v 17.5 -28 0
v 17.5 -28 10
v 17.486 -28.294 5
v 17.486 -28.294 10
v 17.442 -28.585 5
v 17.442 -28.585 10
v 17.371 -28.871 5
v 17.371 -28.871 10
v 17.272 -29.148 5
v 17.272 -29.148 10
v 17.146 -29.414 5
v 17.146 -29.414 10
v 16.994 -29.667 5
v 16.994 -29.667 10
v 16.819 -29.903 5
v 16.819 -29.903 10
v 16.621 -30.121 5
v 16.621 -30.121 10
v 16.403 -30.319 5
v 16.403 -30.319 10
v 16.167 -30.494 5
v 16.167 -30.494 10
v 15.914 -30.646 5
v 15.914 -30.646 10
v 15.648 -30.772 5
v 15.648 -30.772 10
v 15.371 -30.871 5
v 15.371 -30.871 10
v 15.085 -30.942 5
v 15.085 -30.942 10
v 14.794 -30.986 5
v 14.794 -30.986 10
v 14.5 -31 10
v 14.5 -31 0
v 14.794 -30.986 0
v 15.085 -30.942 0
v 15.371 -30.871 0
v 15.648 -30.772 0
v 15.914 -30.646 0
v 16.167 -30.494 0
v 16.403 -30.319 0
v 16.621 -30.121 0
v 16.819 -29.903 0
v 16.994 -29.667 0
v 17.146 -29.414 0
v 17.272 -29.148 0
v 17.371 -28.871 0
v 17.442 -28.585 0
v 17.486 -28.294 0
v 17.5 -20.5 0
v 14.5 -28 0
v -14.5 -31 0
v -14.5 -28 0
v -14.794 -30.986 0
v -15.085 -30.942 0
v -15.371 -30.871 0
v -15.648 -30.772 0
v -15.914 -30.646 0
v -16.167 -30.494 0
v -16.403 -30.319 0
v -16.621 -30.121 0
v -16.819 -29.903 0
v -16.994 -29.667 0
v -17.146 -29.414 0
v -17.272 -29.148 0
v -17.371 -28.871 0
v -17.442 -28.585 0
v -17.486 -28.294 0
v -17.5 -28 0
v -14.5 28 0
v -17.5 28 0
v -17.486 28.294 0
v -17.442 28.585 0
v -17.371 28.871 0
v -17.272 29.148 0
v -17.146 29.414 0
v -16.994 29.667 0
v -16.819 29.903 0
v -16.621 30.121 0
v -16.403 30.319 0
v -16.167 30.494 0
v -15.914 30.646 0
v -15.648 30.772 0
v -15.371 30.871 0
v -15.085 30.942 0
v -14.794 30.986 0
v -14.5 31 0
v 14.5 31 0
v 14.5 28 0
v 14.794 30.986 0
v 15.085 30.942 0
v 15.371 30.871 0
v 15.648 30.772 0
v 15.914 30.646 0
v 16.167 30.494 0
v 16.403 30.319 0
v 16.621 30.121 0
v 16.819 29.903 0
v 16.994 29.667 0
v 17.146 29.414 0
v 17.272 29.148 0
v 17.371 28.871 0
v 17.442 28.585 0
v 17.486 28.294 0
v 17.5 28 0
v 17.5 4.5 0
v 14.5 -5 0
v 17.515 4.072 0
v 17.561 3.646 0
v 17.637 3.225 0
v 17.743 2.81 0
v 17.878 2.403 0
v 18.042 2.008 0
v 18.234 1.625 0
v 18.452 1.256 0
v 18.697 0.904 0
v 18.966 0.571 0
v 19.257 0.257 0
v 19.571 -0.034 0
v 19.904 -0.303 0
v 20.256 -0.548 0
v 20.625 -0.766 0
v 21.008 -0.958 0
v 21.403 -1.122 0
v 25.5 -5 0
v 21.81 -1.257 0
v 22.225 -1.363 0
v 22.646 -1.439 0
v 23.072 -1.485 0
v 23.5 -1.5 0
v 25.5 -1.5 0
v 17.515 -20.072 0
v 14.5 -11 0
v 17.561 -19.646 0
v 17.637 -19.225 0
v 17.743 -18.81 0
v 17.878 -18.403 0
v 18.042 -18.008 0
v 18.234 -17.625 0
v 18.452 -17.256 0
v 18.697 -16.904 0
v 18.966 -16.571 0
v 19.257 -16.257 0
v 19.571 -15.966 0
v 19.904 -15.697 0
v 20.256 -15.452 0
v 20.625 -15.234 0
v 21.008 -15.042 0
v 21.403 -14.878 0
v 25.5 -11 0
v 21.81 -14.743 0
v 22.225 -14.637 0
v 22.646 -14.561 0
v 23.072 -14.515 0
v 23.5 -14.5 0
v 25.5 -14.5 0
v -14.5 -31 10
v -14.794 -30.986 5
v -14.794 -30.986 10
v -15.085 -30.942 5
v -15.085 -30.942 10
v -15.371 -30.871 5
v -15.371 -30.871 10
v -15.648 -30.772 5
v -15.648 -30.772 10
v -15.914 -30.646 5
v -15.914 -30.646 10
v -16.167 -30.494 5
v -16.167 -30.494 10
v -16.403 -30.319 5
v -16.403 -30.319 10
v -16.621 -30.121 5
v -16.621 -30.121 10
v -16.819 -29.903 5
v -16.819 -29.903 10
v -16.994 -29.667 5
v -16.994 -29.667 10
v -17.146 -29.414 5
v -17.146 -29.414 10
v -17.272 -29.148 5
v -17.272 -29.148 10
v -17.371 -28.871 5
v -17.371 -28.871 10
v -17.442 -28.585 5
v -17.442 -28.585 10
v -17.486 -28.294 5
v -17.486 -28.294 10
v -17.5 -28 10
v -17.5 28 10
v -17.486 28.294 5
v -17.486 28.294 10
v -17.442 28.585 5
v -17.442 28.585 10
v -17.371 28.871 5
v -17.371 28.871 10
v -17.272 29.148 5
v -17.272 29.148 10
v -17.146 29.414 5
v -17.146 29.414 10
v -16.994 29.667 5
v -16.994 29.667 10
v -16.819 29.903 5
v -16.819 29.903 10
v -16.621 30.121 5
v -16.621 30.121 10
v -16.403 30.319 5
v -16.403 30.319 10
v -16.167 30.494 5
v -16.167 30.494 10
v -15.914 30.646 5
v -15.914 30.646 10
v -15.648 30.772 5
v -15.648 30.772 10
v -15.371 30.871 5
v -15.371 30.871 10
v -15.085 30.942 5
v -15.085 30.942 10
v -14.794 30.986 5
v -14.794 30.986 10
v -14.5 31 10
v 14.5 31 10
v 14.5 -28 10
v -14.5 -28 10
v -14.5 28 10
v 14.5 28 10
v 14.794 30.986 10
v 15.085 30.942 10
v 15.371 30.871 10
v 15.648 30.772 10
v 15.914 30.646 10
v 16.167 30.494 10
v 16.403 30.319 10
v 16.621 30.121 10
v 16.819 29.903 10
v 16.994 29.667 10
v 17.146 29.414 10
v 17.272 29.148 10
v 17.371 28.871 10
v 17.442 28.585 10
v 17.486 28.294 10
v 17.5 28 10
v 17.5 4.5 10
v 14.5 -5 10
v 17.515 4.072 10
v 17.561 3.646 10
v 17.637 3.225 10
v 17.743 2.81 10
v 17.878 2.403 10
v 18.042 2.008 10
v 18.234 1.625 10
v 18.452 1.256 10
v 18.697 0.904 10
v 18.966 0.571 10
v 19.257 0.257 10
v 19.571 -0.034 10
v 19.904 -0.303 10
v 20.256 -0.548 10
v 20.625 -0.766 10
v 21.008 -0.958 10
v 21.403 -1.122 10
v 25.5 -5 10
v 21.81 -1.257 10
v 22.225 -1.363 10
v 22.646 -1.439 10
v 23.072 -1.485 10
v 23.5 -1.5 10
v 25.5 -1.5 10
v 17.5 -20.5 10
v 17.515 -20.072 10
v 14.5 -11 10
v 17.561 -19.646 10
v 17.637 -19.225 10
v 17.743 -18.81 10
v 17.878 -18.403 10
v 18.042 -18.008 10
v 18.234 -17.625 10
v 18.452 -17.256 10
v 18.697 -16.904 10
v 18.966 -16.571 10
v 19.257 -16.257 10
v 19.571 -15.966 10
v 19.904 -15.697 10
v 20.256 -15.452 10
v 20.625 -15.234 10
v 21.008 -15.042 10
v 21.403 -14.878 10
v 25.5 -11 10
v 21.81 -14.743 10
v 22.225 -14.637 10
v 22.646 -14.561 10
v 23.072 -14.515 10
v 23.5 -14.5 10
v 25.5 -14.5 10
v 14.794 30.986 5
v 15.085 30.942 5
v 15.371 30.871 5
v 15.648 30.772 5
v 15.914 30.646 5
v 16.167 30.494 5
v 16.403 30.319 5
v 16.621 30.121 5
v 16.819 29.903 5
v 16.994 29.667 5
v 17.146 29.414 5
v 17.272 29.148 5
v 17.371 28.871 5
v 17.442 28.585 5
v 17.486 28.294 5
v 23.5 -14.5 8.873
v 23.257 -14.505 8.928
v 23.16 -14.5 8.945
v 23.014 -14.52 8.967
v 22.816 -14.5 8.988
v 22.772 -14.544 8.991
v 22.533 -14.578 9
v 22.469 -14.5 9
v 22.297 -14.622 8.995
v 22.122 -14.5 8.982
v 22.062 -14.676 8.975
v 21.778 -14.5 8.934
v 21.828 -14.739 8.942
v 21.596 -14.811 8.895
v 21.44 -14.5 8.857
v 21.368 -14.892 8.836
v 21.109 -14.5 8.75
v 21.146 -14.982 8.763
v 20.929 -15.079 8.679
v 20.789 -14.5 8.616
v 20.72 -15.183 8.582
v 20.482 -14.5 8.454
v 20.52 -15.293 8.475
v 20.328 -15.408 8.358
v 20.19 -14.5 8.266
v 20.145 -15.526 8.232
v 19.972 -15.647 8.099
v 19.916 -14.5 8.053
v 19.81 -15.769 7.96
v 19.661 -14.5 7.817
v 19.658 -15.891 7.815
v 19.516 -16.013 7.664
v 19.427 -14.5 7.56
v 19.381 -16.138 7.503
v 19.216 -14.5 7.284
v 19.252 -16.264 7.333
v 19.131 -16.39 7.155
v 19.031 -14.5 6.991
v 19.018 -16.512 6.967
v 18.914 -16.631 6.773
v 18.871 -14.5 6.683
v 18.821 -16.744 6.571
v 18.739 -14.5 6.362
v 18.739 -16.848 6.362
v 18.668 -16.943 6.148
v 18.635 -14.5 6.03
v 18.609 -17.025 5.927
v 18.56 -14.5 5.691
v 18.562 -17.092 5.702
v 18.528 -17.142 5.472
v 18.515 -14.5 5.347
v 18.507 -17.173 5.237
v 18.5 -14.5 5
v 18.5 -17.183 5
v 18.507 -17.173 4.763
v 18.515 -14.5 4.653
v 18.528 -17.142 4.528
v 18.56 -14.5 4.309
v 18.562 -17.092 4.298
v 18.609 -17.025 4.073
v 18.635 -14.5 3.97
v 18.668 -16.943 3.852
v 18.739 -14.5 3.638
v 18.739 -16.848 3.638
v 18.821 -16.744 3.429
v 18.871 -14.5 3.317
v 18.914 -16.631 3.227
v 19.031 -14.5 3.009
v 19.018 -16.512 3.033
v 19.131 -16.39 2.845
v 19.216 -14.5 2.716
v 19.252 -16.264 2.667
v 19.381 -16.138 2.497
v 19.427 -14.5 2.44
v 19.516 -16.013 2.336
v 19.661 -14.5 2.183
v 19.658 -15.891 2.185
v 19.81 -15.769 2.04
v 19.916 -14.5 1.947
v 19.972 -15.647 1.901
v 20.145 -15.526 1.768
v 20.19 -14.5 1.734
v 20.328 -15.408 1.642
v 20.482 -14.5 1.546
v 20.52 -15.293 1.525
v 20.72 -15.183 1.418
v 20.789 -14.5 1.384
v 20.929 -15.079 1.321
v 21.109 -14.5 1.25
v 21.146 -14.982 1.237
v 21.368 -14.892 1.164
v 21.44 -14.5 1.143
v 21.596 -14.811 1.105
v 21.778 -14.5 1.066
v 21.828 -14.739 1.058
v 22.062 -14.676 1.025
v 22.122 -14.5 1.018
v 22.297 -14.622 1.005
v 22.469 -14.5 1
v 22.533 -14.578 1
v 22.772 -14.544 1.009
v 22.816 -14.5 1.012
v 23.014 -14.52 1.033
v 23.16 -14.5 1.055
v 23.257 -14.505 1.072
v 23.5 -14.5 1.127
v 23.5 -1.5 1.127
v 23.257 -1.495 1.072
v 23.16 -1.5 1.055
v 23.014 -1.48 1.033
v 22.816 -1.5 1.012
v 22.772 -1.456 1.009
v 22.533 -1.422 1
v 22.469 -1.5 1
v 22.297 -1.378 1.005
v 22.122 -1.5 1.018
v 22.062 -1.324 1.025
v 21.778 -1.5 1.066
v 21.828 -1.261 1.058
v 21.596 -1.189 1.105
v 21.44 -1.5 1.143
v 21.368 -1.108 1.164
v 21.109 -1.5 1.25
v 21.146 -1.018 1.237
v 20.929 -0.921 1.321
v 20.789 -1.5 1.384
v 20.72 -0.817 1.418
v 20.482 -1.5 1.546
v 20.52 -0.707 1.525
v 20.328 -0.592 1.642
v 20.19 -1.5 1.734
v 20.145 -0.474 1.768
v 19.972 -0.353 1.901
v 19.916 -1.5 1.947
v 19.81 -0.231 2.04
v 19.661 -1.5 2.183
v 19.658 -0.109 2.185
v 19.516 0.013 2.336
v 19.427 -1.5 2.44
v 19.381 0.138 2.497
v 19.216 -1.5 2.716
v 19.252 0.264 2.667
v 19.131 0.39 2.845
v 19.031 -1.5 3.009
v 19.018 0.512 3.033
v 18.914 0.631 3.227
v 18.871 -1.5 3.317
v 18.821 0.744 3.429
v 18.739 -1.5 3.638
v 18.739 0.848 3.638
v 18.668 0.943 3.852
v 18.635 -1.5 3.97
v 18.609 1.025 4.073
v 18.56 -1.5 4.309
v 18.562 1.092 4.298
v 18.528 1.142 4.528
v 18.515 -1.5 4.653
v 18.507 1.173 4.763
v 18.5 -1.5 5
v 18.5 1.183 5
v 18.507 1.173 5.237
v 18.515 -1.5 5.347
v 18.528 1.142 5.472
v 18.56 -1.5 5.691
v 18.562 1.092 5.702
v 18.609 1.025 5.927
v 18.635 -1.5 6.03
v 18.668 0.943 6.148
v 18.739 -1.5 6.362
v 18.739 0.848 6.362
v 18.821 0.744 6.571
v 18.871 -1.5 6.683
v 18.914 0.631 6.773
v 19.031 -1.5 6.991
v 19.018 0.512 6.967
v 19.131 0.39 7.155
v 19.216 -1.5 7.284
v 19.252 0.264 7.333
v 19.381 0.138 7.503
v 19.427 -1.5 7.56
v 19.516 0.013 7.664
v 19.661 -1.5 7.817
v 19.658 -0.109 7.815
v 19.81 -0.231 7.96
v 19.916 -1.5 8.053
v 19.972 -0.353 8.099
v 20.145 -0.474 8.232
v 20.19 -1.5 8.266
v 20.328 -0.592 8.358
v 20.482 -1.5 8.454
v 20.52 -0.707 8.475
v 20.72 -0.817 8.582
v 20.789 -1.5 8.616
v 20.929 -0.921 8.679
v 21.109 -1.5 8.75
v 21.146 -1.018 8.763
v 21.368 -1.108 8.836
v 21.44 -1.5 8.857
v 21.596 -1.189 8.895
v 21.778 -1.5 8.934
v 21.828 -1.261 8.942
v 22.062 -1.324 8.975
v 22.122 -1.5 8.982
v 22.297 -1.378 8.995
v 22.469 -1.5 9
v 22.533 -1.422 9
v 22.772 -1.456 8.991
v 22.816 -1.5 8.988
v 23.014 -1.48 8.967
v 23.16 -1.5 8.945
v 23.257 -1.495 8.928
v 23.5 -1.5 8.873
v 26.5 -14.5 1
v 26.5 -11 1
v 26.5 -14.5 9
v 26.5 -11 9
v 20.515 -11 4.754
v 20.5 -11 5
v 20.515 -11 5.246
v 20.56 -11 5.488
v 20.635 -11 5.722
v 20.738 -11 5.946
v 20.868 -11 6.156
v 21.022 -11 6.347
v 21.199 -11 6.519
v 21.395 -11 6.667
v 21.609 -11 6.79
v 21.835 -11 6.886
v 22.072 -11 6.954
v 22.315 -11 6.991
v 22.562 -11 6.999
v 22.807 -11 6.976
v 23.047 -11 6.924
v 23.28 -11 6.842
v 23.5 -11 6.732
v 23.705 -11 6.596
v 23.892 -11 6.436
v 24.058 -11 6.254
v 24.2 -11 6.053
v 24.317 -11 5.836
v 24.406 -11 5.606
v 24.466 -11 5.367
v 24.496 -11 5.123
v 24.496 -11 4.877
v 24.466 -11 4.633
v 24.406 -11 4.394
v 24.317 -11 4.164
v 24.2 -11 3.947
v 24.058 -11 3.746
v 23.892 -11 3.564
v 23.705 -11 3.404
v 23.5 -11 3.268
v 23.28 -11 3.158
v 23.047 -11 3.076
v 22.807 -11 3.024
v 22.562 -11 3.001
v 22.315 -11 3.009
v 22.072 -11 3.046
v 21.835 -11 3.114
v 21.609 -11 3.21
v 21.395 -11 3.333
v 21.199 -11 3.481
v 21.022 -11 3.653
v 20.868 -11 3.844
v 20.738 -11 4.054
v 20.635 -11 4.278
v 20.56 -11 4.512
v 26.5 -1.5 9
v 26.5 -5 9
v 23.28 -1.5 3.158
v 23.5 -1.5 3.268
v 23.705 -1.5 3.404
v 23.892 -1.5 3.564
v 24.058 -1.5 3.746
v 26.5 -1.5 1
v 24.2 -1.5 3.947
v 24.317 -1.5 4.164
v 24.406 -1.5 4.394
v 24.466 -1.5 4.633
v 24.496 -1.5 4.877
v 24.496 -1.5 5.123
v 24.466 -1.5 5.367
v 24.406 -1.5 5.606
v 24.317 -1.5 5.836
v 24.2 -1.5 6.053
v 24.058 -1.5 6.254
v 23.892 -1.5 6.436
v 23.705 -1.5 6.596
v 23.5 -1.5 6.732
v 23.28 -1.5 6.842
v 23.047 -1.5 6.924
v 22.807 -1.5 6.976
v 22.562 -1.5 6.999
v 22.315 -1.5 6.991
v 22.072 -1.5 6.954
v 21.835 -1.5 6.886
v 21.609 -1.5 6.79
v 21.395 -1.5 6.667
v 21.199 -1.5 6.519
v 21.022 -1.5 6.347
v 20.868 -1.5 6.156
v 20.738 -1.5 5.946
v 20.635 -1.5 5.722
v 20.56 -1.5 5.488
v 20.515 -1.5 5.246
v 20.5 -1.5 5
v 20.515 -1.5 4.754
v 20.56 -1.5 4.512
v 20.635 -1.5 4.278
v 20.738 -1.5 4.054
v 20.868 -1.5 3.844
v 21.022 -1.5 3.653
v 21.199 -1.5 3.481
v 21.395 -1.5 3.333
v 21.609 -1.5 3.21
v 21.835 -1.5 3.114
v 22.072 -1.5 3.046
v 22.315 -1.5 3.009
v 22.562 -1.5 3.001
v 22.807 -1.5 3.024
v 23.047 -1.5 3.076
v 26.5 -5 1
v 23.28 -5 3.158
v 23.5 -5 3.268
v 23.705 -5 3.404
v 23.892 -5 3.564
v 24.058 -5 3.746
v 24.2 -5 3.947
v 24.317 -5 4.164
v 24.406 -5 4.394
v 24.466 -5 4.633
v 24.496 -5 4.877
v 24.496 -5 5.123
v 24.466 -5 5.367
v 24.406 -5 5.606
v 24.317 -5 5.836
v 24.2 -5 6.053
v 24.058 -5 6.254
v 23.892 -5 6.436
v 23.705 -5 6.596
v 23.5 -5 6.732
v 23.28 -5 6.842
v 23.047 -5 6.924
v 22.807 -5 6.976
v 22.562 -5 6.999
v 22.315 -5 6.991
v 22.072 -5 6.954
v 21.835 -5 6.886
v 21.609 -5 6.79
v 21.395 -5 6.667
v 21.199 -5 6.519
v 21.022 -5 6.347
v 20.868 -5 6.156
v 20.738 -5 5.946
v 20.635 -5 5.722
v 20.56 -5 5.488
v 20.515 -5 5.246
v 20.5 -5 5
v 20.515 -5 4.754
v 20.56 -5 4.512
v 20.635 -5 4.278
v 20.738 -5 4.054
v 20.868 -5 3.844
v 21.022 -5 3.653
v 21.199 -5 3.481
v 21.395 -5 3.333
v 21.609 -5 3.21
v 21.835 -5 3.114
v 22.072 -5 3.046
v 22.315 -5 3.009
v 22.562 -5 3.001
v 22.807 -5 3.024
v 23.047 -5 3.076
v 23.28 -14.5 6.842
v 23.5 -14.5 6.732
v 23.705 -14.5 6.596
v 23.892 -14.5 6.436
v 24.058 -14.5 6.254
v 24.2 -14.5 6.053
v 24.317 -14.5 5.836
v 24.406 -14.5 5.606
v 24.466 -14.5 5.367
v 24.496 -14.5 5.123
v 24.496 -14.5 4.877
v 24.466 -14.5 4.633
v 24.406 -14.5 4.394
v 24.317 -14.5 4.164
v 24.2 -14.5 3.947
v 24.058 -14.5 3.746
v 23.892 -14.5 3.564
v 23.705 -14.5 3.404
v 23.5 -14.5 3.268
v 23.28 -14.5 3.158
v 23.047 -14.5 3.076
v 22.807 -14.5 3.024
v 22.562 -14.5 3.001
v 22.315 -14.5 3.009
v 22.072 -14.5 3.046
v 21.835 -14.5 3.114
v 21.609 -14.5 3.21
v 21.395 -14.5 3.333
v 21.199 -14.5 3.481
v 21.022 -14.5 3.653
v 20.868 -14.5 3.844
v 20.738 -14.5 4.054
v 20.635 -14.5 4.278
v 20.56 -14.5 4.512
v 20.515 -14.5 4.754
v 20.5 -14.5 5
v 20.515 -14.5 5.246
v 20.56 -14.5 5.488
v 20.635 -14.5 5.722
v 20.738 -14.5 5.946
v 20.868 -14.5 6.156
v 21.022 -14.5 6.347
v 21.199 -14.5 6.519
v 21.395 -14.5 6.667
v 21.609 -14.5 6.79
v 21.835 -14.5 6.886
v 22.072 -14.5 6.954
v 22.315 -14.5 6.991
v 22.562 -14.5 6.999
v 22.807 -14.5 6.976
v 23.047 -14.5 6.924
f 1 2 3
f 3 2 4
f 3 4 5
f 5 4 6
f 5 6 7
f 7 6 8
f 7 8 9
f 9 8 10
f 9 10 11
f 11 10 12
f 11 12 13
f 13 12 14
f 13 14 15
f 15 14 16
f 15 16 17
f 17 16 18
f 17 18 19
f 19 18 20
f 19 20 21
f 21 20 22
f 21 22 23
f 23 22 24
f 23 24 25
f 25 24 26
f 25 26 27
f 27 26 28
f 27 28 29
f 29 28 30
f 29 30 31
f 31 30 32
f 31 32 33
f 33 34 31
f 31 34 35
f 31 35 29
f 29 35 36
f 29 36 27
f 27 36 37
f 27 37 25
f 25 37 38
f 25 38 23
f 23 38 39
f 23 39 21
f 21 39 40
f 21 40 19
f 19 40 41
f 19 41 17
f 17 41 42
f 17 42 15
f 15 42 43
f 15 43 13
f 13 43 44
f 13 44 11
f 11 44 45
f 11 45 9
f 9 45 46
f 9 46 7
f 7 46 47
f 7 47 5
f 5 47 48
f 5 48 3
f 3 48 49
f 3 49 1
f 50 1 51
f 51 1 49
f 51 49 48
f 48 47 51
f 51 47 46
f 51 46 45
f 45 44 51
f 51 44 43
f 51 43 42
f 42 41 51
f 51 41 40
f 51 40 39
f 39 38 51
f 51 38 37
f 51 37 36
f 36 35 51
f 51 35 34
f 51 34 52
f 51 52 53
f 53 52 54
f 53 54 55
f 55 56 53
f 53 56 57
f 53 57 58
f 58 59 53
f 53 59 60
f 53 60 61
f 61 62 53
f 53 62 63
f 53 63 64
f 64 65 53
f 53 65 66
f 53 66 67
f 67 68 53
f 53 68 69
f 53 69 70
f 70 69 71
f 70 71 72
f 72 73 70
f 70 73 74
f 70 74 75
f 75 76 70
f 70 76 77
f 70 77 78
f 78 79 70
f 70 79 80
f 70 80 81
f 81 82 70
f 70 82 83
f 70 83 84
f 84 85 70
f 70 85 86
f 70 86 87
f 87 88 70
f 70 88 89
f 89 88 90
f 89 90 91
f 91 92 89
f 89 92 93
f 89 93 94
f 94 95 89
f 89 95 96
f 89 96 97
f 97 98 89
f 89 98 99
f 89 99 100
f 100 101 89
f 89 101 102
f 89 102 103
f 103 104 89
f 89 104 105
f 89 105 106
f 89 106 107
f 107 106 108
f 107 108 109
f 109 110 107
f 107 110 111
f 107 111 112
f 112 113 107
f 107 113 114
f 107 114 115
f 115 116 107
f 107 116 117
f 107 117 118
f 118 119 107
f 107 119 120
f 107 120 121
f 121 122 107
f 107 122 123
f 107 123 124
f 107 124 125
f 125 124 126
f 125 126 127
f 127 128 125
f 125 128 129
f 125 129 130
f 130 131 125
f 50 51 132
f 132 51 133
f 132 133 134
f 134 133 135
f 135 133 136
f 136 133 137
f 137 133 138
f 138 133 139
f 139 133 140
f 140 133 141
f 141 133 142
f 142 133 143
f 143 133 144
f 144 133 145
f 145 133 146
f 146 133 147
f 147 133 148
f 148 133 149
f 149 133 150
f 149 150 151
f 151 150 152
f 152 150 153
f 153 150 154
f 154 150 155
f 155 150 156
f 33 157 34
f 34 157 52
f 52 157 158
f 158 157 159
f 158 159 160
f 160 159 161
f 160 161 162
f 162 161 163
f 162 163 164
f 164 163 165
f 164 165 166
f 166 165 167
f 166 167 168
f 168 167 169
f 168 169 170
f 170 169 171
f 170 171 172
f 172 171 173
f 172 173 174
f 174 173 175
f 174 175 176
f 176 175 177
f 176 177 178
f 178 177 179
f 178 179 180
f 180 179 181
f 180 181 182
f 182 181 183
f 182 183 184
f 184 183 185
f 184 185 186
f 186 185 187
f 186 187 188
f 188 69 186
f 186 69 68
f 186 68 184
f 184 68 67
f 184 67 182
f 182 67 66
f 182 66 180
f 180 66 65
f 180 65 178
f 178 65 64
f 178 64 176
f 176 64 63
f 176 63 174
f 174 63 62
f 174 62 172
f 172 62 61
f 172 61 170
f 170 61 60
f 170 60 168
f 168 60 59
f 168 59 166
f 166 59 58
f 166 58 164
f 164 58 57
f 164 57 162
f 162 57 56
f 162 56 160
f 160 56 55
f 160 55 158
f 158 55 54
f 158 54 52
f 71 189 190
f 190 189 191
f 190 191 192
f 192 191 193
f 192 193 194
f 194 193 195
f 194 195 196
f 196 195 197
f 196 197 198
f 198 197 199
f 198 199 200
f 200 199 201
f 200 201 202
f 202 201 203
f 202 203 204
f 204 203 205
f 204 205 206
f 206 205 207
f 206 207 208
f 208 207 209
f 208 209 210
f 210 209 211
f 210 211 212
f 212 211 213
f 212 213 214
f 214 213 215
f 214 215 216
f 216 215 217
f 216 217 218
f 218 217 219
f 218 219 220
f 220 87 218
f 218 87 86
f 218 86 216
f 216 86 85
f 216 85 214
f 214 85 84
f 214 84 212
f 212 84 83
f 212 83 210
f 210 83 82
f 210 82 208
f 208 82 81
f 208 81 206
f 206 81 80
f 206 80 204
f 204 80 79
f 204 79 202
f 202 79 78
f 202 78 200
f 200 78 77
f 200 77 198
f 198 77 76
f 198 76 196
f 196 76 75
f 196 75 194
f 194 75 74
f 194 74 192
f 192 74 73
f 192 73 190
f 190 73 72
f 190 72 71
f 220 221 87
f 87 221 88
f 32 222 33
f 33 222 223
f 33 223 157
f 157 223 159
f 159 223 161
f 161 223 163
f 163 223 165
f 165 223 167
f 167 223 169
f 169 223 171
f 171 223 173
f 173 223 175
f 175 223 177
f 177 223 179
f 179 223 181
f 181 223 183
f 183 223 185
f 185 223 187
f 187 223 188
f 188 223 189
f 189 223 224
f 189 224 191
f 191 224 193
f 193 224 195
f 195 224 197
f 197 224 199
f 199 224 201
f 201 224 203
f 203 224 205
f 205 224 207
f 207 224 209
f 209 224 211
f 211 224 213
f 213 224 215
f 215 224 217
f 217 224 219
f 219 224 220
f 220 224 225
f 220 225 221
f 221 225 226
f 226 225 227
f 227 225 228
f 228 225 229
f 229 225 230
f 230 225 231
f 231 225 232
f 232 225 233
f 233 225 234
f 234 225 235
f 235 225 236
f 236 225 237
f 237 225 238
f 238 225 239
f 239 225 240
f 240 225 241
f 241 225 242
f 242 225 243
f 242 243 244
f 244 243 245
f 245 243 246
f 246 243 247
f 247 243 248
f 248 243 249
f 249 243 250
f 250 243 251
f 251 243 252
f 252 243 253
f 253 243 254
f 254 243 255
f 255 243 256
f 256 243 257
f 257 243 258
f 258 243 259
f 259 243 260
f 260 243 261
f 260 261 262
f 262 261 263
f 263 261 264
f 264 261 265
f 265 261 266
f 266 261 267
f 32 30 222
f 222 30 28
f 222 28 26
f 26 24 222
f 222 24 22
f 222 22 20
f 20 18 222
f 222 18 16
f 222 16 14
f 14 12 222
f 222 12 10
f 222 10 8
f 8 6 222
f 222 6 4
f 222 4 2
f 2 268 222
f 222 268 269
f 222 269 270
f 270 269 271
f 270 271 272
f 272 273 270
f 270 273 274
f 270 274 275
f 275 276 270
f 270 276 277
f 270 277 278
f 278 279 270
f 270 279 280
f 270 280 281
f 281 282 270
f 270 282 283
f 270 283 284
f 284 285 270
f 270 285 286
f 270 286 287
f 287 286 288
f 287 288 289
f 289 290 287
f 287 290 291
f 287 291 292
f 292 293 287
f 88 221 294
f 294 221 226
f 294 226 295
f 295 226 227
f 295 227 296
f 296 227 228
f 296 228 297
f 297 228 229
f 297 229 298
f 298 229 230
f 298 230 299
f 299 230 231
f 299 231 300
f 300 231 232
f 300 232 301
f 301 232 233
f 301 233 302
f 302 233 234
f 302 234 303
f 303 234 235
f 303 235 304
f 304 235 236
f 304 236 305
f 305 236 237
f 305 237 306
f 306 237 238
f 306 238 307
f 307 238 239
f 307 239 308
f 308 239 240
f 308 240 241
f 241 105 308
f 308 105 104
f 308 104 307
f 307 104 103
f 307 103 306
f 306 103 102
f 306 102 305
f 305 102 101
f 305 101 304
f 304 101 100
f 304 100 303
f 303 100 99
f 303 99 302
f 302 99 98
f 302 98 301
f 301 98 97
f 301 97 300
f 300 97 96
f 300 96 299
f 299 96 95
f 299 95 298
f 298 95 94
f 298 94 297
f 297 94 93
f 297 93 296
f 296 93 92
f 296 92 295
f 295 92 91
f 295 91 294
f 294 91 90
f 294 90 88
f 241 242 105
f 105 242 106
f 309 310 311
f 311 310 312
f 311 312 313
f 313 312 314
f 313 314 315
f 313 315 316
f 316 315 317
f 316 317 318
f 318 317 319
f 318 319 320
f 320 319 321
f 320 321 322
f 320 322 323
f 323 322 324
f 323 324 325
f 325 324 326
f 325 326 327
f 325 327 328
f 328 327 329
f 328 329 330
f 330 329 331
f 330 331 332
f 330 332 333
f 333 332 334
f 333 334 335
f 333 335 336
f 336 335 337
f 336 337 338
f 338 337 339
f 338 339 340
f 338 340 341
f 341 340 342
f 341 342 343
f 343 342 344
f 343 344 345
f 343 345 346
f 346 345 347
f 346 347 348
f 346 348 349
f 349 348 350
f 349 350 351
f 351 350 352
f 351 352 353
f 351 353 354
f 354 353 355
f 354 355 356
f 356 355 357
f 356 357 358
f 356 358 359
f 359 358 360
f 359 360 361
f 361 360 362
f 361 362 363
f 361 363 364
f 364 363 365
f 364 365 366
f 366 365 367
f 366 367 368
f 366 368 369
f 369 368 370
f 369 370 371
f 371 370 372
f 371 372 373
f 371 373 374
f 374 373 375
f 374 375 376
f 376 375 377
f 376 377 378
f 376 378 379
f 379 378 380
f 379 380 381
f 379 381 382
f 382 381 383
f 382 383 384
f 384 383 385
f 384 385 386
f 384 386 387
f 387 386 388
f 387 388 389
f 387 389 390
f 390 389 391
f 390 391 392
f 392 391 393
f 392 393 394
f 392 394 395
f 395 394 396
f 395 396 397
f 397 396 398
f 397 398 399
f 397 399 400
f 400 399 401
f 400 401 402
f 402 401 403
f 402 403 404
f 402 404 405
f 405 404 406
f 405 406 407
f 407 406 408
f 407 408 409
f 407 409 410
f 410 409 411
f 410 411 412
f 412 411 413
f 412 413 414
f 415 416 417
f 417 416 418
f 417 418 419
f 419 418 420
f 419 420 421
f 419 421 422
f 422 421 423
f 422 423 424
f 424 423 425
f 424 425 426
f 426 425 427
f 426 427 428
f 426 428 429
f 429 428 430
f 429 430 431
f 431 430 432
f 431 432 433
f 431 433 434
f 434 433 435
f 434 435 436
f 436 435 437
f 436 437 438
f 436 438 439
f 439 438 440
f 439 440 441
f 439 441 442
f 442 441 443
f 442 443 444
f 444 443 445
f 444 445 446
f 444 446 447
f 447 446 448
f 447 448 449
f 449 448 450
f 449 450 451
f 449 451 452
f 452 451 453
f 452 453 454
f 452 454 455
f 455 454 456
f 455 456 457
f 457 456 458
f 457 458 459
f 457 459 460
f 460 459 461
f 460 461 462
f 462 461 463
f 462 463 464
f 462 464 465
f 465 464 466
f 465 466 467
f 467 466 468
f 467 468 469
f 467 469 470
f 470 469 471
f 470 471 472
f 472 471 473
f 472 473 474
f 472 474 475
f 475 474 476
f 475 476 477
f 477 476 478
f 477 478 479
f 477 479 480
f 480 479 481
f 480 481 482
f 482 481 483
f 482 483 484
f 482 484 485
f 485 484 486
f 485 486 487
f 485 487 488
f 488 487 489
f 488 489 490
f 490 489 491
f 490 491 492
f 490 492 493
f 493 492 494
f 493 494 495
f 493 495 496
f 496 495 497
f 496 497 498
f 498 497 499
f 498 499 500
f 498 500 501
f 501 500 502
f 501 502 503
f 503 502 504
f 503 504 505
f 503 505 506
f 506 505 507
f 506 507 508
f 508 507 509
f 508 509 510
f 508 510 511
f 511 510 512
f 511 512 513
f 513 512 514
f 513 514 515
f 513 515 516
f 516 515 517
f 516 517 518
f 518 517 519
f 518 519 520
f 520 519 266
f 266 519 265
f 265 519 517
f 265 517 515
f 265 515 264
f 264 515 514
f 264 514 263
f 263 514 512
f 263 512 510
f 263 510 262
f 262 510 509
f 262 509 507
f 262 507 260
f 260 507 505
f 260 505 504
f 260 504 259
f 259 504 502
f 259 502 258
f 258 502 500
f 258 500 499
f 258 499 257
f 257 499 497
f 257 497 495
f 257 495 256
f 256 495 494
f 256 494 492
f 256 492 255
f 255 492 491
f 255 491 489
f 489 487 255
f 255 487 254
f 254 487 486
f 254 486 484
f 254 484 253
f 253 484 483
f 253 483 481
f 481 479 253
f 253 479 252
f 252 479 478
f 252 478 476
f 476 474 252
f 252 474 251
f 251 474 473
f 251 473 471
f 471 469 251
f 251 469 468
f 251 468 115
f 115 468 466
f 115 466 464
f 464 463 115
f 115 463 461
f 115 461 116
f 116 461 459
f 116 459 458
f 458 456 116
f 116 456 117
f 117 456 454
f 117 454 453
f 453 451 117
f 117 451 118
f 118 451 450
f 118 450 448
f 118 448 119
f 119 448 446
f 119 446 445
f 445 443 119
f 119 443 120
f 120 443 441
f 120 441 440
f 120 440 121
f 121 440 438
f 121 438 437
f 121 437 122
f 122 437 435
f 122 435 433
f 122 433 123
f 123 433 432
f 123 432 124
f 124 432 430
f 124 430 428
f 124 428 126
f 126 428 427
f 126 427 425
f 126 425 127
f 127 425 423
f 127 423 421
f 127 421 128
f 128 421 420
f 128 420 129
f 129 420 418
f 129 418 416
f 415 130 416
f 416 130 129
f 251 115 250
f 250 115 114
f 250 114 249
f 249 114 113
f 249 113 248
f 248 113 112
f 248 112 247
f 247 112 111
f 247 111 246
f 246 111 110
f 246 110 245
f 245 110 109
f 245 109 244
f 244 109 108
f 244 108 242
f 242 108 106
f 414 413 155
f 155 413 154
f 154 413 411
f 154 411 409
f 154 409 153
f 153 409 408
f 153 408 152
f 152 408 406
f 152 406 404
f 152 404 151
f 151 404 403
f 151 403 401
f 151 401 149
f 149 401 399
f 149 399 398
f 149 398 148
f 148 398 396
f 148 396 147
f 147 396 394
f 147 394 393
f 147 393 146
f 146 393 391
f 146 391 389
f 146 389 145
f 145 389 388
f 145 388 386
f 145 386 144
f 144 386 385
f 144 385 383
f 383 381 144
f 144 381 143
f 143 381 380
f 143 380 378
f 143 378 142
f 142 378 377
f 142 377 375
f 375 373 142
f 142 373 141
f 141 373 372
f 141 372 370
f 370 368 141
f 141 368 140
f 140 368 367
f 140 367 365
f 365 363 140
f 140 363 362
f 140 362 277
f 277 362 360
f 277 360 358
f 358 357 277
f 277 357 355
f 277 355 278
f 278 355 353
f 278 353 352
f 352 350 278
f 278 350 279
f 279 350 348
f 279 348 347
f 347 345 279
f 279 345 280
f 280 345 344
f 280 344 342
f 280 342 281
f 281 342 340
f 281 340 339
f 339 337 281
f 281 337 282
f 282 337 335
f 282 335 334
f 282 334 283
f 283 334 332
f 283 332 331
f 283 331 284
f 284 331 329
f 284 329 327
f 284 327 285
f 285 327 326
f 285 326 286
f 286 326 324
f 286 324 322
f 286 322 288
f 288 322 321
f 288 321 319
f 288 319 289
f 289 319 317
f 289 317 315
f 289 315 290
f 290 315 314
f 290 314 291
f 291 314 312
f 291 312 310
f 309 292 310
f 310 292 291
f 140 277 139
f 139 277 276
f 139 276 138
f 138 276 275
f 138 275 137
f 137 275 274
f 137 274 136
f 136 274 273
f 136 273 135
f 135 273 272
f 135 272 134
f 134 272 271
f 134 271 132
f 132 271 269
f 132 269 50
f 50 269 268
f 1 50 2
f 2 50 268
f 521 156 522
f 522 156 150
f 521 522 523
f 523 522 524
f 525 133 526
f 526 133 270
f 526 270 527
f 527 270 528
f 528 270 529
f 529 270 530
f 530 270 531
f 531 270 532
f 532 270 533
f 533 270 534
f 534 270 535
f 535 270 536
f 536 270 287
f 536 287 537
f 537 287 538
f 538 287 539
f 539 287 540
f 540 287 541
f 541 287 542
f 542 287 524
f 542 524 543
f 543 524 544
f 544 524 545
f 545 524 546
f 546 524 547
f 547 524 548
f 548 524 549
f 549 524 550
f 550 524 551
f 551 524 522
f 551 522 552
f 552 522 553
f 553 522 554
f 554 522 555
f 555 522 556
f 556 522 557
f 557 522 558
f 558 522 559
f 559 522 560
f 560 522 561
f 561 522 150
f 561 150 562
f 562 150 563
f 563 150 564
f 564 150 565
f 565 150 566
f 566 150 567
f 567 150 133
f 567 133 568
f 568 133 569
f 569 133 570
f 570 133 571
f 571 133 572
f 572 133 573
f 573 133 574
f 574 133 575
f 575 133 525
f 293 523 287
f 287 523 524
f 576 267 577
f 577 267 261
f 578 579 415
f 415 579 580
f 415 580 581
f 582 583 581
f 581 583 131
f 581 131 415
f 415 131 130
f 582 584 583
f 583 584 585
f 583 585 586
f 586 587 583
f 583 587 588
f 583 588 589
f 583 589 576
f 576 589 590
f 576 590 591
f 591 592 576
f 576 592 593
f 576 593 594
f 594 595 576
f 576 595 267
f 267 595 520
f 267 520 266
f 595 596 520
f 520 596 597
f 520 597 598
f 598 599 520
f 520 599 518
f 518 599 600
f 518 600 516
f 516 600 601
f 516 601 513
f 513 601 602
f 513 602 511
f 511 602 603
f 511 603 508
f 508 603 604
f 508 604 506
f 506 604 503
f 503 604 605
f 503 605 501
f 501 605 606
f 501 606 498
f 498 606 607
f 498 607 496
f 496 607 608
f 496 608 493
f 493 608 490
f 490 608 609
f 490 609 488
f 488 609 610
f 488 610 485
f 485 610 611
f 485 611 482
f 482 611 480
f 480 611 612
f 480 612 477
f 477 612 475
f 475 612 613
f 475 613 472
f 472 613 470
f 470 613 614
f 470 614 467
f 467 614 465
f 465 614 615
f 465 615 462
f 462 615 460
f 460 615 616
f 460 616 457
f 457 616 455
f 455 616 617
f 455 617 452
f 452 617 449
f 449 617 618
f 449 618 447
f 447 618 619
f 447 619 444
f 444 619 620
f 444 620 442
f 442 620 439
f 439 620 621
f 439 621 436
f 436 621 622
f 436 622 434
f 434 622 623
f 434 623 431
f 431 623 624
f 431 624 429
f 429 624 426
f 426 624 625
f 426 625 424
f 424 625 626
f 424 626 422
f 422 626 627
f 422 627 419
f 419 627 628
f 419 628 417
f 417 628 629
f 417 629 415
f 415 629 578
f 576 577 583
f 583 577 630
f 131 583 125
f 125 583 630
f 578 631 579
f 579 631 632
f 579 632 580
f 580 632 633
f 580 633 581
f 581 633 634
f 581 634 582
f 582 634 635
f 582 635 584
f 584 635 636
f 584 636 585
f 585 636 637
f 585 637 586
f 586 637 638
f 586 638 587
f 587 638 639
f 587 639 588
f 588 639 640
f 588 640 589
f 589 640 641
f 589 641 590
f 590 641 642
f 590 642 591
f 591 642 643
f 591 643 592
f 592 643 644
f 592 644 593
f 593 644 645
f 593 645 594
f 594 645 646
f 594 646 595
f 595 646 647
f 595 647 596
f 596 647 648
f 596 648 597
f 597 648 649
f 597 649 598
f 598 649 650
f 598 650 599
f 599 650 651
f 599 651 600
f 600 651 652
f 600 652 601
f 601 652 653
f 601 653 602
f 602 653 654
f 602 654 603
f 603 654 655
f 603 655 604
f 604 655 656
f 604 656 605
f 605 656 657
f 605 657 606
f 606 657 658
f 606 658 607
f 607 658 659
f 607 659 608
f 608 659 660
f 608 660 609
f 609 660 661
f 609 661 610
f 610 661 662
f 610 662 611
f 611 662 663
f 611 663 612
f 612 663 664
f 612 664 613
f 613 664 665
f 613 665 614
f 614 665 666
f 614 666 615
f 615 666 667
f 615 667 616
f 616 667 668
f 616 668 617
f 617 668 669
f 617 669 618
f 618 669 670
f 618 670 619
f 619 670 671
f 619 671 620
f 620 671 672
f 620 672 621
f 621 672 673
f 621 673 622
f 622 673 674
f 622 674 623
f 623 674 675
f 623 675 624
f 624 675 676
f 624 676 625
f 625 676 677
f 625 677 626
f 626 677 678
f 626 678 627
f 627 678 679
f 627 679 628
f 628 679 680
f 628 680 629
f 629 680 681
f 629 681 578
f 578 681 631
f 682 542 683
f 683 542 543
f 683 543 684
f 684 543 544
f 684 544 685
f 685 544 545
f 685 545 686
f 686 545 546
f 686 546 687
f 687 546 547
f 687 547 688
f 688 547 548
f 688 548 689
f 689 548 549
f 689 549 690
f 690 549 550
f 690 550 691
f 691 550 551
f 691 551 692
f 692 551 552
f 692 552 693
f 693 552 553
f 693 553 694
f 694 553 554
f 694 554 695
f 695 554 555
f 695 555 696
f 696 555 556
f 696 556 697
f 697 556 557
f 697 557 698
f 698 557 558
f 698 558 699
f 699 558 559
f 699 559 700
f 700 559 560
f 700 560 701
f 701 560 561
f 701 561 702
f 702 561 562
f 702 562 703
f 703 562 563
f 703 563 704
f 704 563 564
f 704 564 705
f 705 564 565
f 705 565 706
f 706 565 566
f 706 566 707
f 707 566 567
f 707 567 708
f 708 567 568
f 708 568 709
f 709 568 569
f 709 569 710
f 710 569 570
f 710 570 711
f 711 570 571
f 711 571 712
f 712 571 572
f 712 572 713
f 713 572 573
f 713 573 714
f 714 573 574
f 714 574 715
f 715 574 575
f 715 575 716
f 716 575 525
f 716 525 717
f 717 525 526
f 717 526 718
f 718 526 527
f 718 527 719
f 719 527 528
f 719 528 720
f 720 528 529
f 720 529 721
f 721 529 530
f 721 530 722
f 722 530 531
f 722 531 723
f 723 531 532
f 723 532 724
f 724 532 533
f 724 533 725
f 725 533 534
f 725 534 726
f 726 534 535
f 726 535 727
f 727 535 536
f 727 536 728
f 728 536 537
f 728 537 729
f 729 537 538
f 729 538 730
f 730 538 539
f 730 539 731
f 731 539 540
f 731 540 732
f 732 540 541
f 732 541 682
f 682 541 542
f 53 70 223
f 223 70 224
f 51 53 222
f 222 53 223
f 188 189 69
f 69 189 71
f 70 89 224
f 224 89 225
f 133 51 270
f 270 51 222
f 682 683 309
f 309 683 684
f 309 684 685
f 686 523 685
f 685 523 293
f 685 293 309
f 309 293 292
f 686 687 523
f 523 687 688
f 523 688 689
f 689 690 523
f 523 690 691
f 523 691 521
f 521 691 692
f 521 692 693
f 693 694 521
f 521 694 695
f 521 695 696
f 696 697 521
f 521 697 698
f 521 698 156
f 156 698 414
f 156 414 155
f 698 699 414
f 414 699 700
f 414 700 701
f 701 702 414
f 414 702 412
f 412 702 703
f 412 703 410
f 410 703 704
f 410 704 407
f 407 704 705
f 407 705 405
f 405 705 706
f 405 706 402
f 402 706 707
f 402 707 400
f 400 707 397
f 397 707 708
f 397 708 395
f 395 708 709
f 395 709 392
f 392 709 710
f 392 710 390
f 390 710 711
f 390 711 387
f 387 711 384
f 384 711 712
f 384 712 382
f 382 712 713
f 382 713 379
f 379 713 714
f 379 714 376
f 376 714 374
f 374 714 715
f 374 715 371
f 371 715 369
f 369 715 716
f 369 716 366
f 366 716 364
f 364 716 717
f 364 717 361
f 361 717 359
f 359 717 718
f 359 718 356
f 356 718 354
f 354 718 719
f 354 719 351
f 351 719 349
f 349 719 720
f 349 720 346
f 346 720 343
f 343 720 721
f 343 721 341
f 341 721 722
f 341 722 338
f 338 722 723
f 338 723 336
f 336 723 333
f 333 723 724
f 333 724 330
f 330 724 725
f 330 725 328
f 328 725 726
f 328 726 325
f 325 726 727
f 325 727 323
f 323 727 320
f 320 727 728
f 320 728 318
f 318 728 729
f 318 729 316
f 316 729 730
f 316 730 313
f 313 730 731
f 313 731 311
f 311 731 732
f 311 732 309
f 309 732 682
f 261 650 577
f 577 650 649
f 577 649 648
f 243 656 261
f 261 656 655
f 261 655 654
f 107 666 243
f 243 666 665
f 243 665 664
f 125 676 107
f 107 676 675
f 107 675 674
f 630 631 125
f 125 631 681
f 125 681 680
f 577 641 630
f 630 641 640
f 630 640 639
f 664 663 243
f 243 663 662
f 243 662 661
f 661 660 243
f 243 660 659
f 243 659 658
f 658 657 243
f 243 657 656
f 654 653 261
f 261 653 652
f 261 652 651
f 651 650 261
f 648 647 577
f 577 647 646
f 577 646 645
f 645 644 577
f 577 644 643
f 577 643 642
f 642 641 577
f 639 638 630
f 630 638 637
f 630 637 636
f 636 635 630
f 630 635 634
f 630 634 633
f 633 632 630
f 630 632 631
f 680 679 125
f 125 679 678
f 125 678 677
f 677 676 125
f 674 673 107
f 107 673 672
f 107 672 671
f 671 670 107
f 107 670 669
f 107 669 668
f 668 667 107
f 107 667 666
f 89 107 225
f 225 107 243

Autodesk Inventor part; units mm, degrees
ref_plane "YZ Plane" through (0, 0, 0) normal (1, 0, 0) x (0, 1, 0)
ref_plane "XZ Plane" through (0, 0, 0) normal (0, 1, 0) x (-1, 0, 0)
ref_plane "XY Plane" through (0, 0, 0) normal (0, 0, 1) x (1, 0, 0)
sketch "Sketch1" plane through (0, 0, 0) normal (0, 0, 1) x (1, 0, 0)
  line L0 (-14.5, 28) -> (14.5, 28)
  line L1 (14.5, 28) -> (14.5, -28)
  line L2 (14.5, -28) -> (-14.5, -28)
  line L3 (-14.5, -28) -> (-14.5, 28)
  line L4 (17.5, 31) -> (-17.5, 31)
  line L5 (-17.5, 31) -> (-17.5, -31)
  line L6 (-17.5, -31) -> (17.5, -31)
  line L7 (14.5, -1.5) -> (26.5, -1.5)
  line L8 (14.5, -14.5) -> (26.5, -14.5)
  line L9 (17.5, -31) -> (17.5, -14.5)
  line L10 (17.5, -1.5) -> (17.5, 31)
  line L11 (26.5, -1.5) -> (26.5, -5)
  line L12 (26.5, -5) -> (14.5, -5)
  line L13 (26.5, -14.5) -> (26.5, -11)
  line L14 (26.5, -11) -> (14.5, -11)
  point P0 (0, 0)
  dimension "d0" = 29
  dimension "d1" = 56
  dimension "d2" = 14.5
  dimension "d3" = 28
  dimension "d4" = 3
  dimension "d5" = 12
  dimension "d6" = 3.5
  dimension "d7" = 3.5
  dimension "d8" = 6
  dimension "d9" = 32.5
  dimension "d10" = 62
extrude "Extrusion1" add sketch "Sketch1" along normal blind 10 contours L3 L2 L1 L8 L9 L6 L5 L4 L10 L7 L0 | L7 L11 L12 L1 | L1 L14 L13 L8
sketch "Sketch2" plane through (17.5, -1.5, 0) normal (0, 1, 0) x (1, 0, 0)
  line L0 (0, 0) -> (0, -10) projected
  line L1 (9, -10) -> (0, -10) projected
  line L2 (9, 0) -> (9, -10) projected
  line L3 (9, 0) -> (0, 0) projected
  point P0 (-17.5, 0)
  point P1 (5, -5)
  dimension "d13" = 4
hole "Hole1" at (22.5, -1.5, 5) direction (0, -1, 0) diameter 4 depth 13
chamfer "Chamfer1" distance 1 angle 45 4 edges at (26.5, -3.25, 0) (26.5, -3.25, 10) (26.5, -12.75, 10) (26.5, -12.75, 0)
fillet "Fillet1" radius 6 2 edges at (17.5, -14.5, 5) (17.5, -1.5, 5)
sketch "Sketch3" plane through (26.5, -1.5, 9) normal (0, 1, 0) x (1, 0, 0)
  line L0 (-3, -1) -> (-3, 2.2679) projected
  line L1 (-1, -1) -> (-3, -1) projected
  line L2 (0, 0) -> (-1, -1) projected
  line L3 (0, 8) -> (0, 0) projected
  line L4 (-1, 9) -> (0, 8) projected
  line L5 (-1, 9) -> (-3, 9) projected
  line L6 (-3, 5.7321) -> (-3, 9) projected
  arc A0 (-3, 2.2679) -> (-3, 5.7321) centre (-4, 4) ccw projected
  circle A1 centre (-4, 4) radius 4
  point P0 (-26.5, 9)
  dimension "d25" = 8
extrude "Extrusion2" cut sketch "Sketch3" along normal blind 10 contours A1 L6 A0 L0 | L0 A0 L6 A1
sketch "Sketch4" plane through (26.5, -14.5, 1) normal (0, -1, 0) x (1, 0, 0)
  line L0 (-3, -1) -> (-3, 2.2679) projected
  line L1 (-3, -1) -> (-1, -1) projected
  line L2 (0, 0) -> (-1, -1) projected
  line L3 (0, 0) -> (0, 8) projected
  line L4 (-1, 9) -> (0, 8) projected
  line L5 (-3, 9) -> (-1, 9) projected
  line L6 (-3, 5.7321) -> (-3, 9) projected
  arc A0 (-3, 2.2679) -> (-3, 5.7321) centre (-4, 4) ccw projected
  circle A1 centre (-4, 4) radius 4
  point P0 (-26.5, -1)
  dimension "d28" = 8
extrude "Extrusion3" cut sketch "Sketch4" along normal blind 10 contours A1 L6 A0 L0 | L0 A0 L6 A1
fillet "Fillet2" radius 3 4 edges at (17.5, 31, 5) (-17.5, 31, 5) (-17.5, -31, 5) (17.5, -31, 5)
equation "\"d2\" = 0.5 * d0"
equation "\"d3\" = 0.5 * d1"
equation "\"d7\" = d6"
properties part number "3DP_PLA_Battery_mount"
